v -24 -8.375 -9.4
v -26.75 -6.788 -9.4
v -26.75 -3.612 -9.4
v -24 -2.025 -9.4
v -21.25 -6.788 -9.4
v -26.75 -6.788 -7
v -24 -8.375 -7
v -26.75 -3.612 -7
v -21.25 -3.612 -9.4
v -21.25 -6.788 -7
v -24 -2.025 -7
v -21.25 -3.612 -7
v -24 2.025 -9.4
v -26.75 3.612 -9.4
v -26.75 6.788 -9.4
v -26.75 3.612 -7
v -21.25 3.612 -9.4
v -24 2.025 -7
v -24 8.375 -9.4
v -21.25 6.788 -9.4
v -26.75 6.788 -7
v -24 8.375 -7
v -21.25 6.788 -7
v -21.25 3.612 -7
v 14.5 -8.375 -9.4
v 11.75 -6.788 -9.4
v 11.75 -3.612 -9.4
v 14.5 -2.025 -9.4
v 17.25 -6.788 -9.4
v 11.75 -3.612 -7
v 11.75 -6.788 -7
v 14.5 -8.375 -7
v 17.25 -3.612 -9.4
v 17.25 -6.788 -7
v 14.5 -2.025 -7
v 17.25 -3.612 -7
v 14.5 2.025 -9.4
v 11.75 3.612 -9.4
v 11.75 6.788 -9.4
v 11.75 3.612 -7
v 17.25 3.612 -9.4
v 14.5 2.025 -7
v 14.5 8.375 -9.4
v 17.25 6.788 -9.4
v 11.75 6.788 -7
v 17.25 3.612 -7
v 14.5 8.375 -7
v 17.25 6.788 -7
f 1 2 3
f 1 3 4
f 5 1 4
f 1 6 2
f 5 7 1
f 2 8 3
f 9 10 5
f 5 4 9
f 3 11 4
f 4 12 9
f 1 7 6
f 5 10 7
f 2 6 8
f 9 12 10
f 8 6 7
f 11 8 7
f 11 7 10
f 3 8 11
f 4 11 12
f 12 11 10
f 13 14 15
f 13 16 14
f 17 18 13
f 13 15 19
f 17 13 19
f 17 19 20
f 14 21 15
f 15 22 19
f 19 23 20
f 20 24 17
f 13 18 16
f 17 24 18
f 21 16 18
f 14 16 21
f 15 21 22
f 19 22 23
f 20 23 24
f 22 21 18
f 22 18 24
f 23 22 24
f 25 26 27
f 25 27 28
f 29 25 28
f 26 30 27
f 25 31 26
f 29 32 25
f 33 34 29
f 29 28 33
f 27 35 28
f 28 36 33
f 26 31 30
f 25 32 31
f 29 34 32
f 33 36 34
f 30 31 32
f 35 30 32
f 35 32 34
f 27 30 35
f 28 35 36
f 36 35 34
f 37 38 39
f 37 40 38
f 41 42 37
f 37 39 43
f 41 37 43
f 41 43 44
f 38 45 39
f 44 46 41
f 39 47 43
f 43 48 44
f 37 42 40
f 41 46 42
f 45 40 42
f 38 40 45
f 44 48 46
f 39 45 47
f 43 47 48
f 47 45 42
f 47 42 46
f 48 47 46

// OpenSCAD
$fn = 50;

difference() {
	union() {
		translate(v = [-24, -5.2, -9.4]) {
			rotate(a = [0, 0, 30]) {
				linear_extrude(height = 2.4) {
					polygon(points = [[3.1754264805429417, 0.0], [1.5877132402714713, 2.75], [-1.5877132402714702, 2.7500000000000004], [-3.1754264805429417, 3.888775875324659e-16], [-1.5877132402714722, -2.7499999999999996], [1.5877132402714687, -2.7500000000000013]]);
				}
			}
		}
		translate(v = [-24, 5.2, -9.4]) {
			rotate(a = [0, 0, 30]) {
				linear_extrude(height = 2.4) {
					polygon(points = [[3.1754264805429417, 0.0], [1.5877132402714713, 2.75], [-1.5877132402714702, 2.7500000000000004], [-3.1754264805429417, 3.888775875324659e-16], [-1.5877132402714722, -2.7499999999999996], [1.5877132402714687, -2.7500000000000013]]);
				}
			}
		}
		translate(v = [14.5, -5.2, -9.4]) {
			rotate(a = [0, 0, 30]) {
				linear_extrude(height = 2.4) {
					polygon(points = [[3.1754264805429417, 0.0], [1.5877132402714713, 2.75], [-1.5877132402714702, 2.7500000000000004], [-3.1754264805429417, 3.888775875324659e-16], [-1.5877132402714722, -2.7499999999999996], [1.5877132402714687, -2.7500000000000013]]);
				}
			}
		}
		translate(v = [14.5, 5.2, -9.4]) {
			rotate(a = [0, 0, 30]) {
				linear_extrude(height = 2.4) {
					polygon(points = [[3.1754264805429417, 0.0], [1.5877132402714713, 2.75], [-1.5877132402714702, 2.7500000000000004], [-3.1754264805429417, 3.888775875324659e-16], [-1.5877132402714722, -2.7499999999999996], [1.5877132402714687, -2.7500000000000013]]);
				}
			}
		}
	}
	union();
}
